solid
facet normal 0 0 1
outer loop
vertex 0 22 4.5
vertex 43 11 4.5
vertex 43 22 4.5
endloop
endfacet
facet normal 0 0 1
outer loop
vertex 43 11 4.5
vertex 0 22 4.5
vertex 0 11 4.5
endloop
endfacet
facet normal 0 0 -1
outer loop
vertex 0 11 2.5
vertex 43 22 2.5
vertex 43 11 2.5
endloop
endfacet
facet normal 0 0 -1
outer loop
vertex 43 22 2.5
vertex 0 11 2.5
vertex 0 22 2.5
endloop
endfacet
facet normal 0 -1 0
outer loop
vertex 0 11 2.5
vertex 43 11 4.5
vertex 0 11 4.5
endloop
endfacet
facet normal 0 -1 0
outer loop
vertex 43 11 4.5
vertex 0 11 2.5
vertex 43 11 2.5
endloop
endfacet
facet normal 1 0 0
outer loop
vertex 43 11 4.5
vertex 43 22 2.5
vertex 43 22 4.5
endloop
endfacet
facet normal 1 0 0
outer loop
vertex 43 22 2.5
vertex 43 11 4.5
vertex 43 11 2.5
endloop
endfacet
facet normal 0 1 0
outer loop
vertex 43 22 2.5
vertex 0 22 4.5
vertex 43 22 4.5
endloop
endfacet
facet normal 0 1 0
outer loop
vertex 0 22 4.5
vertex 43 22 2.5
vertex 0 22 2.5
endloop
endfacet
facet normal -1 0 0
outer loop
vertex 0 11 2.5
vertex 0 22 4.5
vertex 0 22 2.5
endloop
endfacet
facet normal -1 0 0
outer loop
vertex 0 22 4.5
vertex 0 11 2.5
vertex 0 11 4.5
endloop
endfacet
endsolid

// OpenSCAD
bladeX = 43;
bladeY = 22;
bladeZ = 0.5;
translate([0,bladeY/2,2+bladeZ])
cube([bladeX, bladeY/2, 2]);
